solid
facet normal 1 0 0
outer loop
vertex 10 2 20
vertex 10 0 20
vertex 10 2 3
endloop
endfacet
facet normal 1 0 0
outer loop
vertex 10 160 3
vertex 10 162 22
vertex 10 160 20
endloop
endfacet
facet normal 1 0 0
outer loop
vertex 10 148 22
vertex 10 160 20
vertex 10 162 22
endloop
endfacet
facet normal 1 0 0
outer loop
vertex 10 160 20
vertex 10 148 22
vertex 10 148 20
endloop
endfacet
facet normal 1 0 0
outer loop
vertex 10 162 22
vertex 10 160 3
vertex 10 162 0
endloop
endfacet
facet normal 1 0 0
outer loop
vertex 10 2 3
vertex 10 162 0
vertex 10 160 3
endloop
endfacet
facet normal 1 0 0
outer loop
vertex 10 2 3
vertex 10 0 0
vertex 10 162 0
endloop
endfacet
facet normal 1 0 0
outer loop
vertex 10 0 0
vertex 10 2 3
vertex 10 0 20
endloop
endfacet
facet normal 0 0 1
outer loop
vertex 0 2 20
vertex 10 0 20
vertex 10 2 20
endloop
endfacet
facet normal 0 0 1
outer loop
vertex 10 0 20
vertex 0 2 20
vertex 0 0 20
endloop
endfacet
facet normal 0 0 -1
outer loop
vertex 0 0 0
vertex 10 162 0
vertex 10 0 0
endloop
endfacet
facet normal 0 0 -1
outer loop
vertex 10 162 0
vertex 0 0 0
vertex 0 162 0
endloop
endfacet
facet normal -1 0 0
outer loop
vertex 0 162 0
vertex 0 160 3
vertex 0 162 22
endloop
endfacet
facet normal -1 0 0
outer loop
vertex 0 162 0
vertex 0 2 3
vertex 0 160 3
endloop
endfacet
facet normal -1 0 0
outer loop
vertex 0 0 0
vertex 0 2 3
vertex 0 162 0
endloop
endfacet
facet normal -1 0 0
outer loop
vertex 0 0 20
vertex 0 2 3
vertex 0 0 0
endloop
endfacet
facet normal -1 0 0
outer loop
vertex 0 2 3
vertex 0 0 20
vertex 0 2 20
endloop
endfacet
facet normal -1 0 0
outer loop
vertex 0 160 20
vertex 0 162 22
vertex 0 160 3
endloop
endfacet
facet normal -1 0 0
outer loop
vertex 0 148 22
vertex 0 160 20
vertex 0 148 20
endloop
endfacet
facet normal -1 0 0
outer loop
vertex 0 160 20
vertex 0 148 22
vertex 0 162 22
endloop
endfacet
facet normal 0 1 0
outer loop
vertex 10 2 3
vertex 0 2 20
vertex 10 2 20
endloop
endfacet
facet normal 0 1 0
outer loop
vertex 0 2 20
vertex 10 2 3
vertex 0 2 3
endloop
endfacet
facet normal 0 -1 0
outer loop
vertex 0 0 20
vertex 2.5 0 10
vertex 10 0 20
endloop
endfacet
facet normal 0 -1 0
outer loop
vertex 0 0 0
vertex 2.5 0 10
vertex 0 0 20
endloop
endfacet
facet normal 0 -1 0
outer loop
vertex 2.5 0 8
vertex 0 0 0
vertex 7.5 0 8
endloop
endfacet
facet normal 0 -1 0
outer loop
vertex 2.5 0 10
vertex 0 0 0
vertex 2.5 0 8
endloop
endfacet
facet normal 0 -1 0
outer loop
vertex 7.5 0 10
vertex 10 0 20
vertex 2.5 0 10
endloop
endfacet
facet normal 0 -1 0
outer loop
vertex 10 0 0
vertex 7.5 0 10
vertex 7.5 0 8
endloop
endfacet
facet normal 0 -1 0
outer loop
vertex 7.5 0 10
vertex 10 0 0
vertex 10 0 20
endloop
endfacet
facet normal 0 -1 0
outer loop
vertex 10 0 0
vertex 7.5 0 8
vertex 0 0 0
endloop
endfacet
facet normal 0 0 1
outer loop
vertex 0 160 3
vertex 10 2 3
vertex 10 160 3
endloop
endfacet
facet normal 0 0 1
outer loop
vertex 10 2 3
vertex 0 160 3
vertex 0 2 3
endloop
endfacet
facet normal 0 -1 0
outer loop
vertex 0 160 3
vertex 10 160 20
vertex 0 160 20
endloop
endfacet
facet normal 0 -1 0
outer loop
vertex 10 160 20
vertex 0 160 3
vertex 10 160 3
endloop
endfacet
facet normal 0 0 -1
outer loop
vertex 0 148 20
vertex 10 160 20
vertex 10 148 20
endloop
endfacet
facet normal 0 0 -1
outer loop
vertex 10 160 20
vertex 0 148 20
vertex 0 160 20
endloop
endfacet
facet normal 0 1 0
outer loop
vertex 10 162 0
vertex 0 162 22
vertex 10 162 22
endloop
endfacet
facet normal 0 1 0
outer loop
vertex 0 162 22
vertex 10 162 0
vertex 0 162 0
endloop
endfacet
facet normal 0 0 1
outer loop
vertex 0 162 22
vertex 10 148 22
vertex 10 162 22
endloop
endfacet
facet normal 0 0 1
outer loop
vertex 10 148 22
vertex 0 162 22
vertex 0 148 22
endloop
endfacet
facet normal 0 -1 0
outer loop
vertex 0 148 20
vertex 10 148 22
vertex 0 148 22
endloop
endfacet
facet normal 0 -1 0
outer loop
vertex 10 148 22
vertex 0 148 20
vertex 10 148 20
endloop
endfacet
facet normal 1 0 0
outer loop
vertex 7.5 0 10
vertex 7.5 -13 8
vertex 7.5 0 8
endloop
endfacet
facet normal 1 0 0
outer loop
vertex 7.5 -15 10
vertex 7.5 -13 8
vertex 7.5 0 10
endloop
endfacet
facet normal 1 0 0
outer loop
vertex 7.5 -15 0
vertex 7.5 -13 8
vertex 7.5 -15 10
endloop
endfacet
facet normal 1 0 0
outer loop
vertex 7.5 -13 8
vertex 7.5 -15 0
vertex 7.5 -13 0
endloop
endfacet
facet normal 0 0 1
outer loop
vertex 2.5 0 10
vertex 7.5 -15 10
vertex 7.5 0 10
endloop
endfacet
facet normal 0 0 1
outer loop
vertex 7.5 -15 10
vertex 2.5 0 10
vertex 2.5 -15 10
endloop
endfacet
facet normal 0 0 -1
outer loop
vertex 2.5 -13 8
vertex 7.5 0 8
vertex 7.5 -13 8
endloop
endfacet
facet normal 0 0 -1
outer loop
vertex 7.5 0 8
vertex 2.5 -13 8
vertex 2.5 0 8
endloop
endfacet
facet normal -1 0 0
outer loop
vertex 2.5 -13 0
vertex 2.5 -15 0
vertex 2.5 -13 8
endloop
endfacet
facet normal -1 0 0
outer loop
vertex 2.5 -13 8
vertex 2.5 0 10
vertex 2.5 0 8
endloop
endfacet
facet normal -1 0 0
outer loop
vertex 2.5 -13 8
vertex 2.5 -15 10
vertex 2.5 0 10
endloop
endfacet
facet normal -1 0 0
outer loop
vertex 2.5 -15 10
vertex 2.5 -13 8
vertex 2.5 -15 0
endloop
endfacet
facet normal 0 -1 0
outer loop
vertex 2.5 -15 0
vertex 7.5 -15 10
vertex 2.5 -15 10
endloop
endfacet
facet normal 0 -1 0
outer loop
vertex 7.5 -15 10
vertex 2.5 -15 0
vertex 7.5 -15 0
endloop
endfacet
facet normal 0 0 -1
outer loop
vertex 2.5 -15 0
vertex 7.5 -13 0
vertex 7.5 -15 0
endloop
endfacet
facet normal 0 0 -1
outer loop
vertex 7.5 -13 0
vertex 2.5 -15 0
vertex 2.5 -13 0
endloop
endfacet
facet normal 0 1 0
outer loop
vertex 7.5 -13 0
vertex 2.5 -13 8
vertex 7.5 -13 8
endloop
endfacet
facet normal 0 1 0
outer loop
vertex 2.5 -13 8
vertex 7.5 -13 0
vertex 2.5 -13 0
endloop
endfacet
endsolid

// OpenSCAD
l = 160;
w = 10;
h = 20;
p = 15;

cube([w,2,h]);
cube([w,l,3]);
translate([0,l,0])cube([w,2,h]);
translate([0,l-12,h])cube([w,14,2]);
translate([w/2-2.5,-p,h/2-2])cube([w/2,p,2]);
translate([w/2-2.5,-p,0])cube([w/2,2,h/2]);
